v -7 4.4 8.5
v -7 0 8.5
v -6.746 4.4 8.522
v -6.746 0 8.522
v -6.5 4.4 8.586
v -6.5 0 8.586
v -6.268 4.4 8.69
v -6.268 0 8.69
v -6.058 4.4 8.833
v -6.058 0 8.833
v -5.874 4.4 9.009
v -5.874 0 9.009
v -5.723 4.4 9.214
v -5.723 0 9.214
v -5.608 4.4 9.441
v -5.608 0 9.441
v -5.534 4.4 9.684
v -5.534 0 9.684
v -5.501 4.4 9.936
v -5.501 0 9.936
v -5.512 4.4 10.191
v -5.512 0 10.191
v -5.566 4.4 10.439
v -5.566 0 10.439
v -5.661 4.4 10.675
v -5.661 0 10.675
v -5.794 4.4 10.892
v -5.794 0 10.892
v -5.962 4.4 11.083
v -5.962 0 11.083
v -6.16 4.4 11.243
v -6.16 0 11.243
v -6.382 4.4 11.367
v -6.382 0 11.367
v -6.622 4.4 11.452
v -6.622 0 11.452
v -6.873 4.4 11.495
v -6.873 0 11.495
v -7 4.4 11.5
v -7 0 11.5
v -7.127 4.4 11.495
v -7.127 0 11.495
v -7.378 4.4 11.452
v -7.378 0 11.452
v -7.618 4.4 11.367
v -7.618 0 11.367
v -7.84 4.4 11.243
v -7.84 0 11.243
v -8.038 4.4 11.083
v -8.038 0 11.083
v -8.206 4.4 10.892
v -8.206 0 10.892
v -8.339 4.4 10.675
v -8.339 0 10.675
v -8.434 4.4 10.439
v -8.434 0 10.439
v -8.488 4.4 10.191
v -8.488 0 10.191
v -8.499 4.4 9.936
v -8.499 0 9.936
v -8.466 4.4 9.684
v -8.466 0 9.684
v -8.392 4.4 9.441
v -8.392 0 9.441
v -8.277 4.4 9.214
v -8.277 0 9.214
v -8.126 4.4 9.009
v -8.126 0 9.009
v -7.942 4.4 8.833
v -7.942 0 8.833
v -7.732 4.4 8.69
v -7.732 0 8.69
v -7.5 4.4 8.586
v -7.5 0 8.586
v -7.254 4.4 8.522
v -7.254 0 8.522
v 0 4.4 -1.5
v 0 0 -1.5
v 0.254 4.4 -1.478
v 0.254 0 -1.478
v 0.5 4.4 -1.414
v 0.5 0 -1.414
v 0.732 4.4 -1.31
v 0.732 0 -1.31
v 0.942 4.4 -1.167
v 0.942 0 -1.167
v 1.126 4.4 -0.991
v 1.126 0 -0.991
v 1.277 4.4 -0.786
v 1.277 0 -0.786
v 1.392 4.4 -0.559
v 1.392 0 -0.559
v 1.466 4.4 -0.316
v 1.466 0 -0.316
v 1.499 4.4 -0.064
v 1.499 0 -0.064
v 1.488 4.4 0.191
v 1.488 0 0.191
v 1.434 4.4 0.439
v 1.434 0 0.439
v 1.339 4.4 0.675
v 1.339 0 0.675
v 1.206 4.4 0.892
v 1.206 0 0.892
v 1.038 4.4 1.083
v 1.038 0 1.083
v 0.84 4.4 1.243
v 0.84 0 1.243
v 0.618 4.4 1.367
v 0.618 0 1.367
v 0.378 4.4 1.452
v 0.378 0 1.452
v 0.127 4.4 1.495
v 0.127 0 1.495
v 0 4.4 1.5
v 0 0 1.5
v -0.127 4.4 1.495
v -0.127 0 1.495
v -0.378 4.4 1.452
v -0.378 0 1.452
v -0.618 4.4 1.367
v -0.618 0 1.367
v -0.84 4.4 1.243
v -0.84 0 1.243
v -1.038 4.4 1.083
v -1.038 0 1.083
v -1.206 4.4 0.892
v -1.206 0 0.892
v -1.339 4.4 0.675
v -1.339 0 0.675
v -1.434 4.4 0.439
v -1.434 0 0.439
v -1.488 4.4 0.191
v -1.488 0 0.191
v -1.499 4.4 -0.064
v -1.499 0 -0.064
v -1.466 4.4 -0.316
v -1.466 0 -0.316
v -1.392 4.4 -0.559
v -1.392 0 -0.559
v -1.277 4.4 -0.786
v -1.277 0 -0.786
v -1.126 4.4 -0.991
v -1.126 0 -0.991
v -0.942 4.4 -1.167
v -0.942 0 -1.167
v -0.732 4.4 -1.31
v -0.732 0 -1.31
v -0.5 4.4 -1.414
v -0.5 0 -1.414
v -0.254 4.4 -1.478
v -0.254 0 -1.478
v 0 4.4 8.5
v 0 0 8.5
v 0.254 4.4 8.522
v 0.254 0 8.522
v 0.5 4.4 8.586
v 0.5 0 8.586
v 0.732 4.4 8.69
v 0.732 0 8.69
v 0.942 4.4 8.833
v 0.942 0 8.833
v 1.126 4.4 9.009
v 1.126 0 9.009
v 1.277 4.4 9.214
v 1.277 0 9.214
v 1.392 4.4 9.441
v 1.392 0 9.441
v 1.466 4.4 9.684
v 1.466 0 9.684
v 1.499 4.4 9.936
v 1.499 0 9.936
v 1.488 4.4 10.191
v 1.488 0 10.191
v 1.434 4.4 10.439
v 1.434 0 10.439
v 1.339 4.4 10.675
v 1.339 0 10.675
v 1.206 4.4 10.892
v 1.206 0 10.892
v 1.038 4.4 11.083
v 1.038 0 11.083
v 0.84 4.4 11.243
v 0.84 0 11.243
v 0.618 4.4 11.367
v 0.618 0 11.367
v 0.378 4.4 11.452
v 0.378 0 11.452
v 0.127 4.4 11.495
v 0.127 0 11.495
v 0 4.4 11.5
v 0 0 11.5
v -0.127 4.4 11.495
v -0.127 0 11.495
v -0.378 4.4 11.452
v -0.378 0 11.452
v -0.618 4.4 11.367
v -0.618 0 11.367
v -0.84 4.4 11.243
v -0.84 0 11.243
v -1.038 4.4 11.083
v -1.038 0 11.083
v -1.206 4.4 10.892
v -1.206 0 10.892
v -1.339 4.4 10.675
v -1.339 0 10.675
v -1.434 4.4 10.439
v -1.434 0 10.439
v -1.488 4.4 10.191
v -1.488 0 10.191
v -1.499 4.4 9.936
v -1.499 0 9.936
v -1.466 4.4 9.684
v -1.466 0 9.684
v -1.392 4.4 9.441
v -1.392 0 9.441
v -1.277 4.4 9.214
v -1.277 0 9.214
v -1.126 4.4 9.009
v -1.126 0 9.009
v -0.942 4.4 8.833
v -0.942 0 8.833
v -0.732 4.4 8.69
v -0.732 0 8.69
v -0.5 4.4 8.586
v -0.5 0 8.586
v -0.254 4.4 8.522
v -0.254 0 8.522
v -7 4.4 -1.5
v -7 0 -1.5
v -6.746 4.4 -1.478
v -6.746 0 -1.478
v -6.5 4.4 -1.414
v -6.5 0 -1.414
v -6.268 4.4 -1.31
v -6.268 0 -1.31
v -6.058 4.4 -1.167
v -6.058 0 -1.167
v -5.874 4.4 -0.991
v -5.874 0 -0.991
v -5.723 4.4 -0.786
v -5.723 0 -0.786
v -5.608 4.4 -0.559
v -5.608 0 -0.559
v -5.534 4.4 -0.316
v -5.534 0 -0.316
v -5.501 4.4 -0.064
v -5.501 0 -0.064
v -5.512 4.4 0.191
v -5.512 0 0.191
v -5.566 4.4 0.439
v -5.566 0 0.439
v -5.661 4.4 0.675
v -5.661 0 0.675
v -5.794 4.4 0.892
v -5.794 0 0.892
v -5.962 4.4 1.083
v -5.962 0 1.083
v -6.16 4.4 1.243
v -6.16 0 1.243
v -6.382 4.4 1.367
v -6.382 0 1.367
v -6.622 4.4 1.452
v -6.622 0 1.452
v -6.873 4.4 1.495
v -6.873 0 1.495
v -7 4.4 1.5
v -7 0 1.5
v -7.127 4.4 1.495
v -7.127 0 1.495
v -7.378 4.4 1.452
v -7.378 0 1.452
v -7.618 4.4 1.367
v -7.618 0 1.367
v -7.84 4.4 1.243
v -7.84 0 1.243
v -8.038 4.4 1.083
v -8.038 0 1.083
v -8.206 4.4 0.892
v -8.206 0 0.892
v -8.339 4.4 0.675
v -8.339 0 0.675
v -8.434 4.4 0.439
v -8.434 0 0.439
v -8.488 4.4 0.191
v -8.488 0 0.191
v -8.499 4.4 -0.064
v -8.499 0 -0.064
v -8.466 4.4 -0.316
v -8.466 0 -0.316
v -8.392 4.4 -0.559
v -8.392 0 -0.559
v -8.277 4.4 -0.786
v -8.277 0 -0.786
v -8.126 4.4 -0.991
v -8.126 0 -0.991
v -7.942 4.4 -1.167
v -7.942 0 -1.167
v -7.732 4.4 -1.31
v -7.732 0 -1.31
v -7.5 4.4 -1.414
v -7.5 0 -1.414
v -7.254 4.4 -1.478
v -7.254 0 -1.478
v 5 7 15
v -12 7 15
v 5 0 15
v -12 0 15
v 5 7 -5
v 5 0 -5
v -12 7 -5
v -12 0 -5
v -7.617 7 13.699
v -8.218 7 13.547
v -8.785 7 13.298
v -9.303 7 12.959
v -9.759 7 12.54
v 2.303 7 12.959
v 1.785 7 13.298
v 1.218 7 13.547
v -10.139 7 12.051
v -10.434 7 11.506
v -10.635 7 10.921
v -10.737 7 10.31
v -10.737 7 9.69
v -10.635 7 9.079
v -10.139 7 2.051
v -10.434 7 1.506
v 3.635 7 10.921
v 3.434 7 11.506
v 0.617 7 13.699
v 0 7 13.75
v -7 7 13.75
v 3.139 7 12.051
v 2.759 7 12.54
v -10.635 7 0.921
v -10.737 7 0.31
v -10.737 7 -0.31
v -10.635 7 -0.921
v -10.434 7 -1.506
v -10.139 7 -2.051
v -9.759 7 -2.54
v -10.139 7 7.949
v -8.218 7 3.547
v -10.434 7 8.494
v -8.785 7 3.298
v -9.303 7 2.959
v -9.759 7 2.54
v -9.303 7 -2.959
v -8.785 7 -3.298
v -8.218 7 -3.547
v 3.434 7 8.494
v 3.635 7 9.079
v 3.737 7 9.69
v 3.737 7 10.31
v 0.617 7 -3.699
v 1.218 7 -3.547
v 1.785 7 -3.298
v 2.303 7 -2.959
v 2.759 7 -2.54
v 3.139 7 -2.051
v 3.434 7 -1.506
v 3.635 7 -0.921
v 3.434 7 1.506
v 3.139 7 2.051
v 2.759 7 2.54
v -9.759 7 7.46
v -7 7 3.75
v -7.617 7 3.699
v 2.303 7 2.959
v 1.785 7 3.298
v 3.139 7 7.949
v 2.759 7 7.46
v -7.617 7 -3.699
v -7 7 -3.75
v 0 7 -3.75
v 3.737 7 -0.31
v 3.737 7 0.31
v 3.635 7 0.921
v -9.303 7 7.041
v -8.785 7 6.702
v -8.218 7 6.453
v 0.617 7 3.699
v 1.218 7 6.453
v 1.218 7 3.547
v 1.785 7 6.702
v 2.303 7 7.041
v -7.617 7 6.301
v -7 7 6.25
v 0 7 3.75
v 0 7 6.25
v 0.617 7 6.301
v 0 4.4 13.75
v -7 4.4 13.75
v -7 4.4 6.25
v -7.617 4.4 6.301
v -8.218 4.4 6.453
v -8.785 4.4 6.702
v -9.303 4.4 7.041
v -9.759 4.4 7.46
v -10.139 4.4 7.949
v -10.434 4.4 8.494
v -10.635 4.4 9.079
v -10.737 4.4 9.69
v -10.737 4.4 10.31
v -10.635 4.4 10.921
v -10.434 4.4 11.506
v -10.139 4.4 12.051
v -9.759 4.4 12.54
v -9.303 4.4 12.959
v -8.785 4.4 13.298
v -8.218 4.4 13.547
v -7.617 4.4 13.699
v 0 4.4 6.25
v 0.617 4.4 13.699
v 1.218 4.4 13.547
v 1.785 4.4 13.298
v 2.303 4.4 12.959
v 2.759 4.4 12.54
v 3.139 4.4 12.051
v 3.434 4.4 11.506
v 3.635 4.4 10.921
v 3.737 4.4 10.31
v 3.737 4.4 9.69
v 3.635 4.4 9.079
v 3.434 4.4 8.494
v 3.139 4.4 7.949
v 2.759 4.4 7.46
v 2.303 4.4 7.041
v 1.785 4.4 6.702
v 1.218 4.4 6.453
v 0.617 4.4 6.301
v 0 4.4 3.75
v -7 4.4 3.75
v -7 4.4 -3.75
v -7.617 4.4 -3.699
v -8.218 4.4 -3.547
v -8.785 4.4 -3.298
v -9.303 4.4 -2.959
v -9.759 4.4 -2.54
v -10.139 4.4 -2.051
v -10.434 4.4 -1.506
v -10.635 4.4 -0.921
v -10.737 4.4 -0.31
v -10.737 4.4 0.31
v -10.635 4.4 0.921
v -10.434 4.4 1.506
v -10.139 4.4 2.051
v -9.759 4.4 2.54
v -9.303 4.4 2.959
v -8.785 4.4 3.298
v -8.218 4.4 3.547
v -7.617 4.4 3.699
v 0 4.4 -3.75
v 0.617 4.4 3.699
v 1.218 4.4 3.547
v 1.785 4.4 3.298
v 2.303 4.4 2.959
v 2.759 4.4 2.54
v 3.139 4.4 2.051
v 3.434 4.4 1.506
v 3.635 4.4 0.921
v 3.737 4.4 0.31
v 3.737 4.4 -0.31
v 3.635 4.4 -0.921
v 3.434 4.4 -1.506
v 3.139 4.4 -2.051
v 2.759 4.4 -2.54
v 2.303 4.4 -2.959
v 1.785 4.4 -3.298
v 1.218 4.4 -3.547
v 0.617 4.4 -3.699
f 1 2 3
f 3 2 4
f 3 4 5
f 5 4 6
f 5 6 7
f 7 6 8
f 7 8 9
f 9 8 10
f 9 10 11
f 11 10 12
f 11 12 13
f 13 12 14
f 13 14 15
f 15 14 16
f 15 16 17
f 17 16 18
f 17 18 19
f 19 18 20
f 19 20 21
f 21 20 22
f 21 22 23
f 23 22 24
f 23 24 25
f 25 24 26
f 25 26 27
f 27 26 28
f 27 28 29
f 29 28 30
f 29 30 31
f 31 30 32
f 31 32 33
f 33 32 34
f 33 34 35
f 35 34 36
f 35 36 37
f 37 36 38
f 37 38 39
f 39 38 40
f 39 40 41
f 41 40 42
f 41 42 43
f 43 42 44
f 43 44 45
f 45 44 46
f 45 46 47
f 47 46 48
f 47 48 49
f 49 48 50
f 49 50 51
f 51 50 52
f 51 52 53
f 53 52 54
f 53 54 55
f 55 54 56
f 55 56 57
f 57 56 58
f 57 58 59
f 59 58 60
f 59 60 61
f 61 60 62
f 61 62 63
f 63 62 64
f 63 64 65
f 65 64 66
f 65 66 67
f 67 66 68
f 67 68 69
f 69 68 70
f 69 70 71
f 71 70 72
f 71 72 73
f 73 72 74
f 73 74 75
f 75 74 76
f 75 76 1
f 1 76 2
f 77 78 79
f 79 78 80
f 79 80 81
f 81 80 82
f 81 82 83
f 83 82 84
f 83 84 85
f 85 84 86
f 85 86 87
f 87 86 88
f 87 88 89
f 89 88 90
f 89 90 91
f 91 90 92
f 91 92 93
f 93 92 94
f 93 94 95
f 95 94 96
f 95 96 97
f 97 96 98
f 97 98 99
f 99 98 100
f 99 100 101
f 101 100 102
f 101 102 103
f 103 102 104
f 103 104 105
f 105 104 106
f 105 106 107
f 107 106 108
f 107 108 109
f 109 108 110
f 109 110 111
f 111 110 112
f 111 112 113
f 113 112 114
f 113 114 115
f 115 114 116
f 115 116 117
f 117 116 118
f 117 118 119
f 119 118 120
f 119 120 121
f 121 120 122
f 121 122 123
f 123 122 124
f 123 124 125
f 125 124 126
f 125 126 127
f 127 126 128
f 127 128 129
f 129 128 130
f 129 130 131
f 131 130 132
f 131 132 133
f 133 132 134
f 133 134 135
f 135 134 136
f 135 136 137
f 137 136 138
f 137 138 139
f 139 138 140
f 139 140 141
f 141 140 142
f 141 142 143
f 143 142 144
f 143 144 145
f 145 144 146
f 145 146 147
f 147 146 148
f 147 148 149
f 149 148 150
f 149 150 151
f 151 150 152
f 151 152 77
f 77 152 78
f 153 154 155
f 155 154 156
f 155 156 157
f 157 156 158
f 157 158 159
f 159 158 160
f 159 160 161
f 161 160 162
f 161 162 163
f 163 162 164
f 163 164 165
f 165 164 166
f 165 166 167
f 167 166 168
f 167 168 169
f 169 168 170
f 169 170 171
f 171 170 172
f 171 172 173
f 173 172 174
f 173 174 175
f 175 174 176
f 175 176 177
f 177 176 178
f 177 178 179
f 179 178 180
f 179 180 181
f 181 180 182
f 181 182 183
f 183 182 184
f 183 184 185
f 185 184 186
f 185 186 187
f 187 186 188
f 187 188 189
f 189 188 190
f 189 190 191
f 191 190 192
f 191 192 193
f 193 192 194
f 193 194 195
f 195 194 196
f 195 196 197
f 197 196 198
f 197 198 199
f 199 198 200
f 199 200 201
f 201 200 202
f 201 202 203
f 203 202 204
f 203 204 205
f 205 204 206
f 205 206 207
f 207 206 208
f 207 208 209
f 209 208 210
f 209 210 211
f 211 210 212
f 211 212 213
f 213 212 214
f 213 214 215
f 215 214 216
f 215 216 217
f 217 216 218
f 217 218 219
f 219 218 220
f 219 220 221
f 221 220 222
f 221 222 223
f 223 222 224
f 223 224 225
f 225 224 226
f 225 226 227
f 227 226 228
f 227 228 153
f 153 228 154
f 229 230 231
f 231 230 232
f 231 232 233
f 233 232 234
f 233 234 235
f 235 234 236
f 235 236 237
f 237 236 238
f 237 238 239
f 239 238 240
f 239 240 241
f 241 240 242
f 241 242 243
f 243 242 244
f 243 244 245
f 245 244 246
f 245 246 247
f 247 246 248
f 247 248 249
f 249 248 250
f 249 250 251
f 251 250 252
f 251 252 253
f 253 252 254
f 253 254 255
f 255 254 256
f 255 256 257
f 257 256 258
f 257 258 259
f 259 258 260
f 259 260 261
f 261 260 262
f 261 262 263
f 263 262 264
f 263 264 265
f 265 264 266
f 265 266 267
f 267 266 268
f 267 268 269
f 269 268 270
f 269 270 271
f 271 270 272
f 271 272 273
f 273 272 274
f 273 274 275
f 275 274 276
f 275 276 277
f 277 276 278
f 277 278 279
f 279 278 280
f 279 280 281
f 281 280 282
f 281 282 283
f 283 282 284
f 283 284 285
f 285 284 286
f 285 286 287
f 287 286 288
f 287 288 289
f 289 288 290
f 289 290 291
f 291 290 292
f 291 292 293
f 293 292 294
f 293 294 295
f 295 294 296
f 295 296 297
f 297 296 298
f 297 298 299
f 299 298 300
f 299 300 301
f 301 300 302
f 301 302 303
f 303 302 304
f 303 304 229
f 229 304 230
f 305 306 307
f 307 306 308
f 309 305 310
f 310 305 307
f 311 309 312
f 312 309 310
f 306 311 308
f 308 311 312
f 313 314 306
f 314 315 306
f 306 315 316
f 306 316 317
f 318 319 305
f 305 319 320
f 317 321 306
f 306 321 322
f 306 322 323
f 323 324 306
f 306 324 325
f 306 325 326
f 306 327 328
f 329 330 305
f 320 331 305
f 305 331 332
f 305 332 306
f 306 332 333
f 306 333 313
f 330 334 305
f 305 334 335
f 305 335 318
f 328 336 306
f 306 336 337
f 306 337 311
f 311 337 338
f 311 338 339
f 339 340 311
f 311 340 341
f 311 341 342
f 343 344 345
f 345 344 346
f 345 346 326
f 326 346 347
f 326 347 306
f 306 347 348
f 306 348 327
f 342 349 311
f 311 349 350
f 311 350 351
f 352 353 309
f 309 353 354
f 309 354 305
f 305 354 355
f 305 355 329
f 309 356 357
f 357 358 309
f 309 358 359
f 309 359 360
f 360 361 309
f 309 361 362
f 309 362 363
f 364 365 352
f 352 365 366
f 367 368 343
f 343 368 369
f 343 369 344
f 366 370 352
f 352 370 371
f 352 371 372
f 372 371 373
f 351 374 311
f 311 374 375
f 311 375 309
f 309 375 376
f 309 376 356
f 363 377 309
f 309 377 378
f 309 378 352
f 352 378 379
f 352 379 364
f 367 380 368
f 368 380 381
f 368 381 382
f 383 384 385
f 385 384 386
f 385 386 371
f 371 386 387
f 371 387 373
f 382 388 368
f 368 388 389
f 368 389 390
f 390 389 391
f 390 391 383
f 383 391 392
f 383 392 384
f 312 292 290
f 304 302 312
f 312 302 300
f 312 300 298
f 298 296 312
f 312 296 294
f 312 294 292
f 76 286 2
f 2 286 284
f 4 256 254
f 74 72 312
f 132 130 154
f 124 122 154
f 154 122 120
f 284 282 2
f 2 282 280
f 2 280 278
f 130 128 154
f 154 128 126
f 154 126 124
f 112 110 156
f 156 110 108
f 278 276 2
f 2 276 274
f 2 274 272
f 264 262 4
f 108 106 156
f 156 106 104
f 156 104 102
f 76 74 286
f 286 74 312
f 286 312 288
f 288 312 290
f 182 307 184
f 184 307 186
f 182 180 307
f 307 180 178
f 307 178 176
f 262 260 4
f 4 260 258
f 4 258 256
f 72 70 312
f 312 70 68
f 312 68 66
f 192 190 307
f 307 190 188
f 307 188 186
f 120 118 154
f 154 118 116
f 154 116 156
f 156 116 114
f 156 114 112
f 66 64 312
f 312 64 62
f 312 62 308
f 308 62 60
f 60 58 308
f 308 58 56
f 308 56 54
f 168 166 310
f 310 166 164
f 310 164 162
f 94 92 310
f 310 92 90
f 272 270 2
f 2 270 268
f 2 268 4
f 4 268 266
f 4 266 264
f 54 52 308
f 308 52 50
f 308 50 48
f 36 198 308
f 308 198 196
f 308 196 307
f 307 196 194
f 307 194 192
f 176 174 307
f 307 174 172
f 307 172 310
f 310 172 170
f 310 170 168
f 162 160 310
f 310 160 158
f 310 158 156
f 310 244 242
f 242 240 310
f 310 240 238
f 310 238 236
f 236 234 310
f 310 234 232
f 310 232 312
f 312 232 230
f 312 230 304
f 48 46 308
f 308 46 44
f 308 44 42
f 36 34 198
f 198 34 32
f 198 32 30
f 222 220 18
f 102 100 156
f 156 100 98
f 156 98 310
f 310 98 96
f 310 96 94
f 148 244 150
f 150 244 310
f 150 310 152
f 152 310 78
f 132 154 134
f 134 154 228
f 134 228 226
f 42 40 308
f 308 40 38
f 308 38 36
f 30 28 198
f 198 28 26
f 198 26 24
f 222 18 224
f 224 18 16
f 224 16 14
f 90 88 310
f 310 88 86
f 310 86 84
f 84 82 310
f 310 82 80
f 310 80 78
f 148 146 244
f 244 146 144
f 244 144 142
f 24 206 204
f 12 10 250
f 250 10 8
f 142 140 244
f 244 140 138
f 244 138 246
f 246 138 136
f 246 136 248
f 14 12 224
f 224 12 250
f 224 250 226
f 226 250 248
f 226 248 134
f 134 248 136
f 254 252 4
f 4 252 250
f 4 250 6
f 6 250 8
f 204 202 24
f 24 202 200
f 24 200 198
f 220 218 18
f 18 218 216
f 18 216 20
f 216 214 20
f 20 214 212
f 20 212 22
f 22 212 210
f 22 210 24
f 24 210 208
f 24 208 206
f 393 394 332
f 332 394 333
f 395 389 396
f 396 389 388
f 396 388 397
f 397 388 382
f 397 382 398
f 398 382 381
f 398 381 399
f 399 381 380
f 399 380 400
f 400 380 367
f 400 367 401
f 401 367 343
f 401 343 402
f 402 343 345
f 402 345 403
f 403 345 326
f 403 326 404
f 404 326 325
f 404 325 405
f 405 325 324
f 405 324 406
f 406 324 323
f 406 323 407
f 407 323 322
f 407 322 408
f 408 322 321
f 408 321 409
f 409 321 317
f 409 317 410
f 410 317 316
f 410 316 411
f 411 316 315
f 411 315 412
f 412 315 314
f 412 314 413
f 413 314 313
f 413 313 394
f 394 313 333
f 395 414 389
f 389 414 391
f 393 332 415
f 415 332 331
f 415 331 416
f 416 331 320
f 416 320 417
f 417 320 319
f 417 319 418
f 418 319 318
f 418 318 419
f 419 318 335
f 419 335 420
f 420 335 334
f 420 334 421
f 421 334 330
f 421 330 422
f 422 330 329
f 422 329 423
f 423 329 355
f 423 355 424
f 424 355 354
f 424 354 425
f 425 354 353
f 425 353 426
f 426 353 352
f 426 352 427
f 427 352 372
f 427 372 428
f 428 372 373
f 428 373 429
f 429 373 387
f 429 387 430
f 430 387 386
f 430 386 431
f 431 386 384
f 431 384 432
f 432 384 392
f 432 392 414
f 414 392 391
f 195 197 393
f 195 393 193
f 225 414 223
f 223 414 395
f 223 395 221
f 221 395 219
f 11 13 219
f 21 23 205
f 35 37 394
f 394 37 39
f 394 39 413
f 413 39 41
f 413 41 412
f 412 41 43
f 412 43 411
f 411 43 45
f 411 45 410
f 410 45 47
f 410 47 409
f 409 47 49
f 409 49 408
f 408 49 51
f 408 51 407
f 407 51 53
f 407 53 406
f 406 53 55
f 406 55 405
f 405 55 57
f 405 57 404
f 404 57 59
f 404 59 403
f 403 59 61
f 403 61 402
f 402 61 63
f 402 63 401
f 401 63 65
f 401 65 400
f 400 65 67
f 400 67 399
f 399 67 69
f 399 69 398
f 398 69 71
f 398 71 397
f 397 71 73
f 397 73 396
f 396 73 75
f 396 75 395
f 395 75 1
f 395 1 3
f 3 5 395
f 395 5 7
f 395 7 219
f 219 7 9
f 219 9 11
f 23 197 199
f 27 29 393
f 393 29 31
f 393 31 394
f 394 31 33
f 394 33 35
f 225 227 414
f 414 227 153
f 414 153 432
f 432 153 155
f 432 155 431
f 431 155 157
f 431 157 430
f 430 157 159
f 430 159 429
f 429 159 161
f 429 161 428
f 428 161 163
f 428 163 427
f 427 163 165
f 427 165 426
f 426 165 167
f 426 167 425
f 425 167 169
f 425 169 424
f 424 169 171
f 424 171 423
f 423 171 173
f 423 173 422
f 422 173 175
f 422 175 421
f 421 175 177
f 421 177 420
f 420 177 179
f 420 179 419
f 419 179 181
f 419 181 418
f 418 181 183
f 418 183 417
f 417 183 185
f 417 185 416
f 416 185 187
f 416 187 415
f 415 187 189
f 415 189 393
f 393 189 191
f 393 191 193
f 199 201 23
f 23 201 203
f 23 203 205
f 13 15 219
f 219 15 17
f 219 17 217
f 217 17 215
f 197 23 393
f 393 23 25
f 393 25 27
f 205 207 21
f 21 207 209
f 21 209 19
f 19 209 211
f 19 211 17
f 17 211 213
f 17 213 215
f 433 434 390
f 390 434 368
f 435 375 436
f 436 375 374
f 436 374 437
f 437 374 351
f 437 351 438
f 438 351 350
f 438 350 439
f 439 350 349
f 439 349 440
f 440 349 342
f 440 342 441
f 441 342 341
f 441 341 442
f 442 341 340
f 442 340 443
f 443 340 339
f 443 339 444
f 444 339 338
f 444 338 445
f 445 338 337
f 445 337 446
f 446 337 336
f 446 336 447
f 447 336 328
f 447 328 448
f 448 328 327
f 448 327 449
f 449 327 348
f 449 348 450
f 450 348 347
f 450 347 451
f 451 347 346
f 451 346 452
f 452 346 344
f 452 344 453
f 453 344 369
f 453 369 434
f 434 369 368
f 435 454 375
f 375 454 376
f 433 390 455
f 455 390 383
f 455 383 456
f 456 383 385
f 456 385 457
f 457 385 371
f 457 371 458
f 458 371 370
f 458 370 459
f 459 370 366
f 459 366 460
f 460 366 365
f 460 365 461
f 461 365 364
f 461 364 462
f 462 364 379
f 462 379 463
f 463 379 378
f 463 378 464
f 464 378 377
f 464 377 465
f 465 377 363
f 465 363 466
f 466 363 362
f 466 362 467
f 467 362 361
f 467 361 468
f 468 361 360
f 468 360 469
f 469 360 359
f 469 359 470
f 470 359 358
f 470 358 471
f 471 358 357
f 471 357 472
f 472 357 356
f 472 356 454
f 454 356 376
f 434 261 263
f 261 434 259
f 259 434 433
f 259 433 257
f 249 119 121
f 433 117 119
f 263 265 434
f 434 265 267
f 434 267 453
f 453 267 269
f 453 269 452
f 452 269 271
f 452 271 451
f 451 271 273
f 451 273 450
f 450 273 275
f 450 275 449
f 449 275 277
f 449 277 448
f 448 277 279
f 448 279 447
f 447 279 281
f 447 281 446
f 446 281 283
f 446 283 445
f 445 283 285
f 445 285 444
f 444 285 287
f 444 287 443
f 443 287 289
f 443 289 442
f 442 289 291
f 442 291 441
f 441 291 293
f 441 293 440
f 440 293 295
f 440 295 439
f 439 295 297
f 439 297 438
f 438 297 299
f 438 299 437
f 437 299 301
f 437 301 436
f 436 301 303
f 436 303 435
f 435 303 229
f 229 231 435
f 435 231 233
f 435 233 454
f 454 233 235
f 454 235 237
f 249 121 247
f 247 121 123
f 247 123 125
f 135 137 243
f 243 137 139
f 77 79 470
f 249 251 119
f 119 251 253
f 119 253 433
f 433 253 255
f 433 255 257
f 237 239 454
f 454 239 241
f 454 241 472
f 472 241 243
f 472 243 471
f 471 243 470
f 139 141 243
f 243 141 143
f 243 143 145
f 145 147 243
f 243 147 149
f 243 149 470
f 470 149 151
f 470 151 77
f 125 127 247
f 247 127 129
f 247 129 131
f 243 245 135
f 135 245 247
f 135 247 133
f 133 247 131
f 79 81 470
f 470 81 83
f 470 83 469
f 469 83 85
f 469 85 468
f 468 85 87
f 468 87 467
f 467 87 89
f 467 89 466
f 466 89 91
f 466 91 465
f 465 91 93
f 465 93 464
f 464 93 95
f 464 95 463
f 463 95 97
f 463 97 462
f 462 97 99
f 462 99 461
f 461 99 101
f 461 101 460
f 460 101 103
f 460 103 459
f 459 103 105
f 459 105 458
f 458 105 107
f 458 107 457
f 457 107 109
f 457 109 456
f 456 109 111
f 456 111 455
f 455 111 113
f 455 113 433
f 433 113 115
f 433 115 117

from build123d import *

# Parameters (mm, degrees)
SKETCH1_W           = 17
SKETCH1_H           = 20
SKETCH1_R           = 1.5
BOSS_EXTRUDE1_DEPTH = 7
SKETCH2_R           = 1.5
CUT_EXTRUDE6_DEPTH  = 2.6


with BuildPart() as part:
    # Sketch1 → Boss-Extrude1 (new body)
    with BuildSketch(Plane(origin=(0, 0, 0), x_dir=(1, 0, 0), z_dir=(0, 1, 0))):
        with Locations((-3.5, -5)):
            Rectangle(SKETCH1_W, SKETCH1_H)
        Circle(SKETCH1_R, mode=Mode.SUBTRACT)
        with Locations((-7, -10)):
            Circle(SKETCH1_R, mode=Mode.SUBTRACT)
        with Locations((-7, 0)):
            Circle(SKETCH1_R, mode=Mode.SUBTRACT)
        with Locations((0, -10)):
            Circle(SKETCH1_R, mode=Mode.SUBTRACT)
    extrude(amount=BOSS_EXTRUDE1_DEPTH)

    # Sketch2 → Cut-Extrude6 (cut)
    with BuildSketch(Plane(origin=(0, 7, 0), x_dir=(1, 0, 0), z_dir=(0, 1, 0))):
        with BuildLine():
            Line((-7, -13.75), (0, -13.75))
            ThreePointArc((0, -13.75), (3.75, -10), (0, -6.25))
            Line((0, -6.25), (-7, -6.25))
            ThreePointArc((-7, -6.25), (-10.75, -10), (-7, -13.75))
        make_face()
        with Locations((-7, -10)):
            Circle(SKETCH2_R, mode=Mode.SUBTRACT)
        with Locations((0, -10)):
            Circle(SKETCH2_R, mode=Mode.SUBTRACT)
        with BuildLine():
            ThreePointArc((-7, 3.75), (-10.75, 0), (-7, -3.75))
            Line((-7, -3.75), (0, -3.75))
            ThreePointArc((0, -3.75), (3.75, 0), (0, 3.75))
            Line((0, 3.75), (-7, 3.75))
        make_face()
        with Locations((-7, 0)):
            Circle(SKETCH2_R, mode=Mode.SUBTRACT)
        Circle(SKETCH2_R, mode=Mode.SUBTRACT)
    extrude(amount=-CUT_EXTRUDE6_DEPTH, mode=Mode.SUBTRACT)


solid = part.part
